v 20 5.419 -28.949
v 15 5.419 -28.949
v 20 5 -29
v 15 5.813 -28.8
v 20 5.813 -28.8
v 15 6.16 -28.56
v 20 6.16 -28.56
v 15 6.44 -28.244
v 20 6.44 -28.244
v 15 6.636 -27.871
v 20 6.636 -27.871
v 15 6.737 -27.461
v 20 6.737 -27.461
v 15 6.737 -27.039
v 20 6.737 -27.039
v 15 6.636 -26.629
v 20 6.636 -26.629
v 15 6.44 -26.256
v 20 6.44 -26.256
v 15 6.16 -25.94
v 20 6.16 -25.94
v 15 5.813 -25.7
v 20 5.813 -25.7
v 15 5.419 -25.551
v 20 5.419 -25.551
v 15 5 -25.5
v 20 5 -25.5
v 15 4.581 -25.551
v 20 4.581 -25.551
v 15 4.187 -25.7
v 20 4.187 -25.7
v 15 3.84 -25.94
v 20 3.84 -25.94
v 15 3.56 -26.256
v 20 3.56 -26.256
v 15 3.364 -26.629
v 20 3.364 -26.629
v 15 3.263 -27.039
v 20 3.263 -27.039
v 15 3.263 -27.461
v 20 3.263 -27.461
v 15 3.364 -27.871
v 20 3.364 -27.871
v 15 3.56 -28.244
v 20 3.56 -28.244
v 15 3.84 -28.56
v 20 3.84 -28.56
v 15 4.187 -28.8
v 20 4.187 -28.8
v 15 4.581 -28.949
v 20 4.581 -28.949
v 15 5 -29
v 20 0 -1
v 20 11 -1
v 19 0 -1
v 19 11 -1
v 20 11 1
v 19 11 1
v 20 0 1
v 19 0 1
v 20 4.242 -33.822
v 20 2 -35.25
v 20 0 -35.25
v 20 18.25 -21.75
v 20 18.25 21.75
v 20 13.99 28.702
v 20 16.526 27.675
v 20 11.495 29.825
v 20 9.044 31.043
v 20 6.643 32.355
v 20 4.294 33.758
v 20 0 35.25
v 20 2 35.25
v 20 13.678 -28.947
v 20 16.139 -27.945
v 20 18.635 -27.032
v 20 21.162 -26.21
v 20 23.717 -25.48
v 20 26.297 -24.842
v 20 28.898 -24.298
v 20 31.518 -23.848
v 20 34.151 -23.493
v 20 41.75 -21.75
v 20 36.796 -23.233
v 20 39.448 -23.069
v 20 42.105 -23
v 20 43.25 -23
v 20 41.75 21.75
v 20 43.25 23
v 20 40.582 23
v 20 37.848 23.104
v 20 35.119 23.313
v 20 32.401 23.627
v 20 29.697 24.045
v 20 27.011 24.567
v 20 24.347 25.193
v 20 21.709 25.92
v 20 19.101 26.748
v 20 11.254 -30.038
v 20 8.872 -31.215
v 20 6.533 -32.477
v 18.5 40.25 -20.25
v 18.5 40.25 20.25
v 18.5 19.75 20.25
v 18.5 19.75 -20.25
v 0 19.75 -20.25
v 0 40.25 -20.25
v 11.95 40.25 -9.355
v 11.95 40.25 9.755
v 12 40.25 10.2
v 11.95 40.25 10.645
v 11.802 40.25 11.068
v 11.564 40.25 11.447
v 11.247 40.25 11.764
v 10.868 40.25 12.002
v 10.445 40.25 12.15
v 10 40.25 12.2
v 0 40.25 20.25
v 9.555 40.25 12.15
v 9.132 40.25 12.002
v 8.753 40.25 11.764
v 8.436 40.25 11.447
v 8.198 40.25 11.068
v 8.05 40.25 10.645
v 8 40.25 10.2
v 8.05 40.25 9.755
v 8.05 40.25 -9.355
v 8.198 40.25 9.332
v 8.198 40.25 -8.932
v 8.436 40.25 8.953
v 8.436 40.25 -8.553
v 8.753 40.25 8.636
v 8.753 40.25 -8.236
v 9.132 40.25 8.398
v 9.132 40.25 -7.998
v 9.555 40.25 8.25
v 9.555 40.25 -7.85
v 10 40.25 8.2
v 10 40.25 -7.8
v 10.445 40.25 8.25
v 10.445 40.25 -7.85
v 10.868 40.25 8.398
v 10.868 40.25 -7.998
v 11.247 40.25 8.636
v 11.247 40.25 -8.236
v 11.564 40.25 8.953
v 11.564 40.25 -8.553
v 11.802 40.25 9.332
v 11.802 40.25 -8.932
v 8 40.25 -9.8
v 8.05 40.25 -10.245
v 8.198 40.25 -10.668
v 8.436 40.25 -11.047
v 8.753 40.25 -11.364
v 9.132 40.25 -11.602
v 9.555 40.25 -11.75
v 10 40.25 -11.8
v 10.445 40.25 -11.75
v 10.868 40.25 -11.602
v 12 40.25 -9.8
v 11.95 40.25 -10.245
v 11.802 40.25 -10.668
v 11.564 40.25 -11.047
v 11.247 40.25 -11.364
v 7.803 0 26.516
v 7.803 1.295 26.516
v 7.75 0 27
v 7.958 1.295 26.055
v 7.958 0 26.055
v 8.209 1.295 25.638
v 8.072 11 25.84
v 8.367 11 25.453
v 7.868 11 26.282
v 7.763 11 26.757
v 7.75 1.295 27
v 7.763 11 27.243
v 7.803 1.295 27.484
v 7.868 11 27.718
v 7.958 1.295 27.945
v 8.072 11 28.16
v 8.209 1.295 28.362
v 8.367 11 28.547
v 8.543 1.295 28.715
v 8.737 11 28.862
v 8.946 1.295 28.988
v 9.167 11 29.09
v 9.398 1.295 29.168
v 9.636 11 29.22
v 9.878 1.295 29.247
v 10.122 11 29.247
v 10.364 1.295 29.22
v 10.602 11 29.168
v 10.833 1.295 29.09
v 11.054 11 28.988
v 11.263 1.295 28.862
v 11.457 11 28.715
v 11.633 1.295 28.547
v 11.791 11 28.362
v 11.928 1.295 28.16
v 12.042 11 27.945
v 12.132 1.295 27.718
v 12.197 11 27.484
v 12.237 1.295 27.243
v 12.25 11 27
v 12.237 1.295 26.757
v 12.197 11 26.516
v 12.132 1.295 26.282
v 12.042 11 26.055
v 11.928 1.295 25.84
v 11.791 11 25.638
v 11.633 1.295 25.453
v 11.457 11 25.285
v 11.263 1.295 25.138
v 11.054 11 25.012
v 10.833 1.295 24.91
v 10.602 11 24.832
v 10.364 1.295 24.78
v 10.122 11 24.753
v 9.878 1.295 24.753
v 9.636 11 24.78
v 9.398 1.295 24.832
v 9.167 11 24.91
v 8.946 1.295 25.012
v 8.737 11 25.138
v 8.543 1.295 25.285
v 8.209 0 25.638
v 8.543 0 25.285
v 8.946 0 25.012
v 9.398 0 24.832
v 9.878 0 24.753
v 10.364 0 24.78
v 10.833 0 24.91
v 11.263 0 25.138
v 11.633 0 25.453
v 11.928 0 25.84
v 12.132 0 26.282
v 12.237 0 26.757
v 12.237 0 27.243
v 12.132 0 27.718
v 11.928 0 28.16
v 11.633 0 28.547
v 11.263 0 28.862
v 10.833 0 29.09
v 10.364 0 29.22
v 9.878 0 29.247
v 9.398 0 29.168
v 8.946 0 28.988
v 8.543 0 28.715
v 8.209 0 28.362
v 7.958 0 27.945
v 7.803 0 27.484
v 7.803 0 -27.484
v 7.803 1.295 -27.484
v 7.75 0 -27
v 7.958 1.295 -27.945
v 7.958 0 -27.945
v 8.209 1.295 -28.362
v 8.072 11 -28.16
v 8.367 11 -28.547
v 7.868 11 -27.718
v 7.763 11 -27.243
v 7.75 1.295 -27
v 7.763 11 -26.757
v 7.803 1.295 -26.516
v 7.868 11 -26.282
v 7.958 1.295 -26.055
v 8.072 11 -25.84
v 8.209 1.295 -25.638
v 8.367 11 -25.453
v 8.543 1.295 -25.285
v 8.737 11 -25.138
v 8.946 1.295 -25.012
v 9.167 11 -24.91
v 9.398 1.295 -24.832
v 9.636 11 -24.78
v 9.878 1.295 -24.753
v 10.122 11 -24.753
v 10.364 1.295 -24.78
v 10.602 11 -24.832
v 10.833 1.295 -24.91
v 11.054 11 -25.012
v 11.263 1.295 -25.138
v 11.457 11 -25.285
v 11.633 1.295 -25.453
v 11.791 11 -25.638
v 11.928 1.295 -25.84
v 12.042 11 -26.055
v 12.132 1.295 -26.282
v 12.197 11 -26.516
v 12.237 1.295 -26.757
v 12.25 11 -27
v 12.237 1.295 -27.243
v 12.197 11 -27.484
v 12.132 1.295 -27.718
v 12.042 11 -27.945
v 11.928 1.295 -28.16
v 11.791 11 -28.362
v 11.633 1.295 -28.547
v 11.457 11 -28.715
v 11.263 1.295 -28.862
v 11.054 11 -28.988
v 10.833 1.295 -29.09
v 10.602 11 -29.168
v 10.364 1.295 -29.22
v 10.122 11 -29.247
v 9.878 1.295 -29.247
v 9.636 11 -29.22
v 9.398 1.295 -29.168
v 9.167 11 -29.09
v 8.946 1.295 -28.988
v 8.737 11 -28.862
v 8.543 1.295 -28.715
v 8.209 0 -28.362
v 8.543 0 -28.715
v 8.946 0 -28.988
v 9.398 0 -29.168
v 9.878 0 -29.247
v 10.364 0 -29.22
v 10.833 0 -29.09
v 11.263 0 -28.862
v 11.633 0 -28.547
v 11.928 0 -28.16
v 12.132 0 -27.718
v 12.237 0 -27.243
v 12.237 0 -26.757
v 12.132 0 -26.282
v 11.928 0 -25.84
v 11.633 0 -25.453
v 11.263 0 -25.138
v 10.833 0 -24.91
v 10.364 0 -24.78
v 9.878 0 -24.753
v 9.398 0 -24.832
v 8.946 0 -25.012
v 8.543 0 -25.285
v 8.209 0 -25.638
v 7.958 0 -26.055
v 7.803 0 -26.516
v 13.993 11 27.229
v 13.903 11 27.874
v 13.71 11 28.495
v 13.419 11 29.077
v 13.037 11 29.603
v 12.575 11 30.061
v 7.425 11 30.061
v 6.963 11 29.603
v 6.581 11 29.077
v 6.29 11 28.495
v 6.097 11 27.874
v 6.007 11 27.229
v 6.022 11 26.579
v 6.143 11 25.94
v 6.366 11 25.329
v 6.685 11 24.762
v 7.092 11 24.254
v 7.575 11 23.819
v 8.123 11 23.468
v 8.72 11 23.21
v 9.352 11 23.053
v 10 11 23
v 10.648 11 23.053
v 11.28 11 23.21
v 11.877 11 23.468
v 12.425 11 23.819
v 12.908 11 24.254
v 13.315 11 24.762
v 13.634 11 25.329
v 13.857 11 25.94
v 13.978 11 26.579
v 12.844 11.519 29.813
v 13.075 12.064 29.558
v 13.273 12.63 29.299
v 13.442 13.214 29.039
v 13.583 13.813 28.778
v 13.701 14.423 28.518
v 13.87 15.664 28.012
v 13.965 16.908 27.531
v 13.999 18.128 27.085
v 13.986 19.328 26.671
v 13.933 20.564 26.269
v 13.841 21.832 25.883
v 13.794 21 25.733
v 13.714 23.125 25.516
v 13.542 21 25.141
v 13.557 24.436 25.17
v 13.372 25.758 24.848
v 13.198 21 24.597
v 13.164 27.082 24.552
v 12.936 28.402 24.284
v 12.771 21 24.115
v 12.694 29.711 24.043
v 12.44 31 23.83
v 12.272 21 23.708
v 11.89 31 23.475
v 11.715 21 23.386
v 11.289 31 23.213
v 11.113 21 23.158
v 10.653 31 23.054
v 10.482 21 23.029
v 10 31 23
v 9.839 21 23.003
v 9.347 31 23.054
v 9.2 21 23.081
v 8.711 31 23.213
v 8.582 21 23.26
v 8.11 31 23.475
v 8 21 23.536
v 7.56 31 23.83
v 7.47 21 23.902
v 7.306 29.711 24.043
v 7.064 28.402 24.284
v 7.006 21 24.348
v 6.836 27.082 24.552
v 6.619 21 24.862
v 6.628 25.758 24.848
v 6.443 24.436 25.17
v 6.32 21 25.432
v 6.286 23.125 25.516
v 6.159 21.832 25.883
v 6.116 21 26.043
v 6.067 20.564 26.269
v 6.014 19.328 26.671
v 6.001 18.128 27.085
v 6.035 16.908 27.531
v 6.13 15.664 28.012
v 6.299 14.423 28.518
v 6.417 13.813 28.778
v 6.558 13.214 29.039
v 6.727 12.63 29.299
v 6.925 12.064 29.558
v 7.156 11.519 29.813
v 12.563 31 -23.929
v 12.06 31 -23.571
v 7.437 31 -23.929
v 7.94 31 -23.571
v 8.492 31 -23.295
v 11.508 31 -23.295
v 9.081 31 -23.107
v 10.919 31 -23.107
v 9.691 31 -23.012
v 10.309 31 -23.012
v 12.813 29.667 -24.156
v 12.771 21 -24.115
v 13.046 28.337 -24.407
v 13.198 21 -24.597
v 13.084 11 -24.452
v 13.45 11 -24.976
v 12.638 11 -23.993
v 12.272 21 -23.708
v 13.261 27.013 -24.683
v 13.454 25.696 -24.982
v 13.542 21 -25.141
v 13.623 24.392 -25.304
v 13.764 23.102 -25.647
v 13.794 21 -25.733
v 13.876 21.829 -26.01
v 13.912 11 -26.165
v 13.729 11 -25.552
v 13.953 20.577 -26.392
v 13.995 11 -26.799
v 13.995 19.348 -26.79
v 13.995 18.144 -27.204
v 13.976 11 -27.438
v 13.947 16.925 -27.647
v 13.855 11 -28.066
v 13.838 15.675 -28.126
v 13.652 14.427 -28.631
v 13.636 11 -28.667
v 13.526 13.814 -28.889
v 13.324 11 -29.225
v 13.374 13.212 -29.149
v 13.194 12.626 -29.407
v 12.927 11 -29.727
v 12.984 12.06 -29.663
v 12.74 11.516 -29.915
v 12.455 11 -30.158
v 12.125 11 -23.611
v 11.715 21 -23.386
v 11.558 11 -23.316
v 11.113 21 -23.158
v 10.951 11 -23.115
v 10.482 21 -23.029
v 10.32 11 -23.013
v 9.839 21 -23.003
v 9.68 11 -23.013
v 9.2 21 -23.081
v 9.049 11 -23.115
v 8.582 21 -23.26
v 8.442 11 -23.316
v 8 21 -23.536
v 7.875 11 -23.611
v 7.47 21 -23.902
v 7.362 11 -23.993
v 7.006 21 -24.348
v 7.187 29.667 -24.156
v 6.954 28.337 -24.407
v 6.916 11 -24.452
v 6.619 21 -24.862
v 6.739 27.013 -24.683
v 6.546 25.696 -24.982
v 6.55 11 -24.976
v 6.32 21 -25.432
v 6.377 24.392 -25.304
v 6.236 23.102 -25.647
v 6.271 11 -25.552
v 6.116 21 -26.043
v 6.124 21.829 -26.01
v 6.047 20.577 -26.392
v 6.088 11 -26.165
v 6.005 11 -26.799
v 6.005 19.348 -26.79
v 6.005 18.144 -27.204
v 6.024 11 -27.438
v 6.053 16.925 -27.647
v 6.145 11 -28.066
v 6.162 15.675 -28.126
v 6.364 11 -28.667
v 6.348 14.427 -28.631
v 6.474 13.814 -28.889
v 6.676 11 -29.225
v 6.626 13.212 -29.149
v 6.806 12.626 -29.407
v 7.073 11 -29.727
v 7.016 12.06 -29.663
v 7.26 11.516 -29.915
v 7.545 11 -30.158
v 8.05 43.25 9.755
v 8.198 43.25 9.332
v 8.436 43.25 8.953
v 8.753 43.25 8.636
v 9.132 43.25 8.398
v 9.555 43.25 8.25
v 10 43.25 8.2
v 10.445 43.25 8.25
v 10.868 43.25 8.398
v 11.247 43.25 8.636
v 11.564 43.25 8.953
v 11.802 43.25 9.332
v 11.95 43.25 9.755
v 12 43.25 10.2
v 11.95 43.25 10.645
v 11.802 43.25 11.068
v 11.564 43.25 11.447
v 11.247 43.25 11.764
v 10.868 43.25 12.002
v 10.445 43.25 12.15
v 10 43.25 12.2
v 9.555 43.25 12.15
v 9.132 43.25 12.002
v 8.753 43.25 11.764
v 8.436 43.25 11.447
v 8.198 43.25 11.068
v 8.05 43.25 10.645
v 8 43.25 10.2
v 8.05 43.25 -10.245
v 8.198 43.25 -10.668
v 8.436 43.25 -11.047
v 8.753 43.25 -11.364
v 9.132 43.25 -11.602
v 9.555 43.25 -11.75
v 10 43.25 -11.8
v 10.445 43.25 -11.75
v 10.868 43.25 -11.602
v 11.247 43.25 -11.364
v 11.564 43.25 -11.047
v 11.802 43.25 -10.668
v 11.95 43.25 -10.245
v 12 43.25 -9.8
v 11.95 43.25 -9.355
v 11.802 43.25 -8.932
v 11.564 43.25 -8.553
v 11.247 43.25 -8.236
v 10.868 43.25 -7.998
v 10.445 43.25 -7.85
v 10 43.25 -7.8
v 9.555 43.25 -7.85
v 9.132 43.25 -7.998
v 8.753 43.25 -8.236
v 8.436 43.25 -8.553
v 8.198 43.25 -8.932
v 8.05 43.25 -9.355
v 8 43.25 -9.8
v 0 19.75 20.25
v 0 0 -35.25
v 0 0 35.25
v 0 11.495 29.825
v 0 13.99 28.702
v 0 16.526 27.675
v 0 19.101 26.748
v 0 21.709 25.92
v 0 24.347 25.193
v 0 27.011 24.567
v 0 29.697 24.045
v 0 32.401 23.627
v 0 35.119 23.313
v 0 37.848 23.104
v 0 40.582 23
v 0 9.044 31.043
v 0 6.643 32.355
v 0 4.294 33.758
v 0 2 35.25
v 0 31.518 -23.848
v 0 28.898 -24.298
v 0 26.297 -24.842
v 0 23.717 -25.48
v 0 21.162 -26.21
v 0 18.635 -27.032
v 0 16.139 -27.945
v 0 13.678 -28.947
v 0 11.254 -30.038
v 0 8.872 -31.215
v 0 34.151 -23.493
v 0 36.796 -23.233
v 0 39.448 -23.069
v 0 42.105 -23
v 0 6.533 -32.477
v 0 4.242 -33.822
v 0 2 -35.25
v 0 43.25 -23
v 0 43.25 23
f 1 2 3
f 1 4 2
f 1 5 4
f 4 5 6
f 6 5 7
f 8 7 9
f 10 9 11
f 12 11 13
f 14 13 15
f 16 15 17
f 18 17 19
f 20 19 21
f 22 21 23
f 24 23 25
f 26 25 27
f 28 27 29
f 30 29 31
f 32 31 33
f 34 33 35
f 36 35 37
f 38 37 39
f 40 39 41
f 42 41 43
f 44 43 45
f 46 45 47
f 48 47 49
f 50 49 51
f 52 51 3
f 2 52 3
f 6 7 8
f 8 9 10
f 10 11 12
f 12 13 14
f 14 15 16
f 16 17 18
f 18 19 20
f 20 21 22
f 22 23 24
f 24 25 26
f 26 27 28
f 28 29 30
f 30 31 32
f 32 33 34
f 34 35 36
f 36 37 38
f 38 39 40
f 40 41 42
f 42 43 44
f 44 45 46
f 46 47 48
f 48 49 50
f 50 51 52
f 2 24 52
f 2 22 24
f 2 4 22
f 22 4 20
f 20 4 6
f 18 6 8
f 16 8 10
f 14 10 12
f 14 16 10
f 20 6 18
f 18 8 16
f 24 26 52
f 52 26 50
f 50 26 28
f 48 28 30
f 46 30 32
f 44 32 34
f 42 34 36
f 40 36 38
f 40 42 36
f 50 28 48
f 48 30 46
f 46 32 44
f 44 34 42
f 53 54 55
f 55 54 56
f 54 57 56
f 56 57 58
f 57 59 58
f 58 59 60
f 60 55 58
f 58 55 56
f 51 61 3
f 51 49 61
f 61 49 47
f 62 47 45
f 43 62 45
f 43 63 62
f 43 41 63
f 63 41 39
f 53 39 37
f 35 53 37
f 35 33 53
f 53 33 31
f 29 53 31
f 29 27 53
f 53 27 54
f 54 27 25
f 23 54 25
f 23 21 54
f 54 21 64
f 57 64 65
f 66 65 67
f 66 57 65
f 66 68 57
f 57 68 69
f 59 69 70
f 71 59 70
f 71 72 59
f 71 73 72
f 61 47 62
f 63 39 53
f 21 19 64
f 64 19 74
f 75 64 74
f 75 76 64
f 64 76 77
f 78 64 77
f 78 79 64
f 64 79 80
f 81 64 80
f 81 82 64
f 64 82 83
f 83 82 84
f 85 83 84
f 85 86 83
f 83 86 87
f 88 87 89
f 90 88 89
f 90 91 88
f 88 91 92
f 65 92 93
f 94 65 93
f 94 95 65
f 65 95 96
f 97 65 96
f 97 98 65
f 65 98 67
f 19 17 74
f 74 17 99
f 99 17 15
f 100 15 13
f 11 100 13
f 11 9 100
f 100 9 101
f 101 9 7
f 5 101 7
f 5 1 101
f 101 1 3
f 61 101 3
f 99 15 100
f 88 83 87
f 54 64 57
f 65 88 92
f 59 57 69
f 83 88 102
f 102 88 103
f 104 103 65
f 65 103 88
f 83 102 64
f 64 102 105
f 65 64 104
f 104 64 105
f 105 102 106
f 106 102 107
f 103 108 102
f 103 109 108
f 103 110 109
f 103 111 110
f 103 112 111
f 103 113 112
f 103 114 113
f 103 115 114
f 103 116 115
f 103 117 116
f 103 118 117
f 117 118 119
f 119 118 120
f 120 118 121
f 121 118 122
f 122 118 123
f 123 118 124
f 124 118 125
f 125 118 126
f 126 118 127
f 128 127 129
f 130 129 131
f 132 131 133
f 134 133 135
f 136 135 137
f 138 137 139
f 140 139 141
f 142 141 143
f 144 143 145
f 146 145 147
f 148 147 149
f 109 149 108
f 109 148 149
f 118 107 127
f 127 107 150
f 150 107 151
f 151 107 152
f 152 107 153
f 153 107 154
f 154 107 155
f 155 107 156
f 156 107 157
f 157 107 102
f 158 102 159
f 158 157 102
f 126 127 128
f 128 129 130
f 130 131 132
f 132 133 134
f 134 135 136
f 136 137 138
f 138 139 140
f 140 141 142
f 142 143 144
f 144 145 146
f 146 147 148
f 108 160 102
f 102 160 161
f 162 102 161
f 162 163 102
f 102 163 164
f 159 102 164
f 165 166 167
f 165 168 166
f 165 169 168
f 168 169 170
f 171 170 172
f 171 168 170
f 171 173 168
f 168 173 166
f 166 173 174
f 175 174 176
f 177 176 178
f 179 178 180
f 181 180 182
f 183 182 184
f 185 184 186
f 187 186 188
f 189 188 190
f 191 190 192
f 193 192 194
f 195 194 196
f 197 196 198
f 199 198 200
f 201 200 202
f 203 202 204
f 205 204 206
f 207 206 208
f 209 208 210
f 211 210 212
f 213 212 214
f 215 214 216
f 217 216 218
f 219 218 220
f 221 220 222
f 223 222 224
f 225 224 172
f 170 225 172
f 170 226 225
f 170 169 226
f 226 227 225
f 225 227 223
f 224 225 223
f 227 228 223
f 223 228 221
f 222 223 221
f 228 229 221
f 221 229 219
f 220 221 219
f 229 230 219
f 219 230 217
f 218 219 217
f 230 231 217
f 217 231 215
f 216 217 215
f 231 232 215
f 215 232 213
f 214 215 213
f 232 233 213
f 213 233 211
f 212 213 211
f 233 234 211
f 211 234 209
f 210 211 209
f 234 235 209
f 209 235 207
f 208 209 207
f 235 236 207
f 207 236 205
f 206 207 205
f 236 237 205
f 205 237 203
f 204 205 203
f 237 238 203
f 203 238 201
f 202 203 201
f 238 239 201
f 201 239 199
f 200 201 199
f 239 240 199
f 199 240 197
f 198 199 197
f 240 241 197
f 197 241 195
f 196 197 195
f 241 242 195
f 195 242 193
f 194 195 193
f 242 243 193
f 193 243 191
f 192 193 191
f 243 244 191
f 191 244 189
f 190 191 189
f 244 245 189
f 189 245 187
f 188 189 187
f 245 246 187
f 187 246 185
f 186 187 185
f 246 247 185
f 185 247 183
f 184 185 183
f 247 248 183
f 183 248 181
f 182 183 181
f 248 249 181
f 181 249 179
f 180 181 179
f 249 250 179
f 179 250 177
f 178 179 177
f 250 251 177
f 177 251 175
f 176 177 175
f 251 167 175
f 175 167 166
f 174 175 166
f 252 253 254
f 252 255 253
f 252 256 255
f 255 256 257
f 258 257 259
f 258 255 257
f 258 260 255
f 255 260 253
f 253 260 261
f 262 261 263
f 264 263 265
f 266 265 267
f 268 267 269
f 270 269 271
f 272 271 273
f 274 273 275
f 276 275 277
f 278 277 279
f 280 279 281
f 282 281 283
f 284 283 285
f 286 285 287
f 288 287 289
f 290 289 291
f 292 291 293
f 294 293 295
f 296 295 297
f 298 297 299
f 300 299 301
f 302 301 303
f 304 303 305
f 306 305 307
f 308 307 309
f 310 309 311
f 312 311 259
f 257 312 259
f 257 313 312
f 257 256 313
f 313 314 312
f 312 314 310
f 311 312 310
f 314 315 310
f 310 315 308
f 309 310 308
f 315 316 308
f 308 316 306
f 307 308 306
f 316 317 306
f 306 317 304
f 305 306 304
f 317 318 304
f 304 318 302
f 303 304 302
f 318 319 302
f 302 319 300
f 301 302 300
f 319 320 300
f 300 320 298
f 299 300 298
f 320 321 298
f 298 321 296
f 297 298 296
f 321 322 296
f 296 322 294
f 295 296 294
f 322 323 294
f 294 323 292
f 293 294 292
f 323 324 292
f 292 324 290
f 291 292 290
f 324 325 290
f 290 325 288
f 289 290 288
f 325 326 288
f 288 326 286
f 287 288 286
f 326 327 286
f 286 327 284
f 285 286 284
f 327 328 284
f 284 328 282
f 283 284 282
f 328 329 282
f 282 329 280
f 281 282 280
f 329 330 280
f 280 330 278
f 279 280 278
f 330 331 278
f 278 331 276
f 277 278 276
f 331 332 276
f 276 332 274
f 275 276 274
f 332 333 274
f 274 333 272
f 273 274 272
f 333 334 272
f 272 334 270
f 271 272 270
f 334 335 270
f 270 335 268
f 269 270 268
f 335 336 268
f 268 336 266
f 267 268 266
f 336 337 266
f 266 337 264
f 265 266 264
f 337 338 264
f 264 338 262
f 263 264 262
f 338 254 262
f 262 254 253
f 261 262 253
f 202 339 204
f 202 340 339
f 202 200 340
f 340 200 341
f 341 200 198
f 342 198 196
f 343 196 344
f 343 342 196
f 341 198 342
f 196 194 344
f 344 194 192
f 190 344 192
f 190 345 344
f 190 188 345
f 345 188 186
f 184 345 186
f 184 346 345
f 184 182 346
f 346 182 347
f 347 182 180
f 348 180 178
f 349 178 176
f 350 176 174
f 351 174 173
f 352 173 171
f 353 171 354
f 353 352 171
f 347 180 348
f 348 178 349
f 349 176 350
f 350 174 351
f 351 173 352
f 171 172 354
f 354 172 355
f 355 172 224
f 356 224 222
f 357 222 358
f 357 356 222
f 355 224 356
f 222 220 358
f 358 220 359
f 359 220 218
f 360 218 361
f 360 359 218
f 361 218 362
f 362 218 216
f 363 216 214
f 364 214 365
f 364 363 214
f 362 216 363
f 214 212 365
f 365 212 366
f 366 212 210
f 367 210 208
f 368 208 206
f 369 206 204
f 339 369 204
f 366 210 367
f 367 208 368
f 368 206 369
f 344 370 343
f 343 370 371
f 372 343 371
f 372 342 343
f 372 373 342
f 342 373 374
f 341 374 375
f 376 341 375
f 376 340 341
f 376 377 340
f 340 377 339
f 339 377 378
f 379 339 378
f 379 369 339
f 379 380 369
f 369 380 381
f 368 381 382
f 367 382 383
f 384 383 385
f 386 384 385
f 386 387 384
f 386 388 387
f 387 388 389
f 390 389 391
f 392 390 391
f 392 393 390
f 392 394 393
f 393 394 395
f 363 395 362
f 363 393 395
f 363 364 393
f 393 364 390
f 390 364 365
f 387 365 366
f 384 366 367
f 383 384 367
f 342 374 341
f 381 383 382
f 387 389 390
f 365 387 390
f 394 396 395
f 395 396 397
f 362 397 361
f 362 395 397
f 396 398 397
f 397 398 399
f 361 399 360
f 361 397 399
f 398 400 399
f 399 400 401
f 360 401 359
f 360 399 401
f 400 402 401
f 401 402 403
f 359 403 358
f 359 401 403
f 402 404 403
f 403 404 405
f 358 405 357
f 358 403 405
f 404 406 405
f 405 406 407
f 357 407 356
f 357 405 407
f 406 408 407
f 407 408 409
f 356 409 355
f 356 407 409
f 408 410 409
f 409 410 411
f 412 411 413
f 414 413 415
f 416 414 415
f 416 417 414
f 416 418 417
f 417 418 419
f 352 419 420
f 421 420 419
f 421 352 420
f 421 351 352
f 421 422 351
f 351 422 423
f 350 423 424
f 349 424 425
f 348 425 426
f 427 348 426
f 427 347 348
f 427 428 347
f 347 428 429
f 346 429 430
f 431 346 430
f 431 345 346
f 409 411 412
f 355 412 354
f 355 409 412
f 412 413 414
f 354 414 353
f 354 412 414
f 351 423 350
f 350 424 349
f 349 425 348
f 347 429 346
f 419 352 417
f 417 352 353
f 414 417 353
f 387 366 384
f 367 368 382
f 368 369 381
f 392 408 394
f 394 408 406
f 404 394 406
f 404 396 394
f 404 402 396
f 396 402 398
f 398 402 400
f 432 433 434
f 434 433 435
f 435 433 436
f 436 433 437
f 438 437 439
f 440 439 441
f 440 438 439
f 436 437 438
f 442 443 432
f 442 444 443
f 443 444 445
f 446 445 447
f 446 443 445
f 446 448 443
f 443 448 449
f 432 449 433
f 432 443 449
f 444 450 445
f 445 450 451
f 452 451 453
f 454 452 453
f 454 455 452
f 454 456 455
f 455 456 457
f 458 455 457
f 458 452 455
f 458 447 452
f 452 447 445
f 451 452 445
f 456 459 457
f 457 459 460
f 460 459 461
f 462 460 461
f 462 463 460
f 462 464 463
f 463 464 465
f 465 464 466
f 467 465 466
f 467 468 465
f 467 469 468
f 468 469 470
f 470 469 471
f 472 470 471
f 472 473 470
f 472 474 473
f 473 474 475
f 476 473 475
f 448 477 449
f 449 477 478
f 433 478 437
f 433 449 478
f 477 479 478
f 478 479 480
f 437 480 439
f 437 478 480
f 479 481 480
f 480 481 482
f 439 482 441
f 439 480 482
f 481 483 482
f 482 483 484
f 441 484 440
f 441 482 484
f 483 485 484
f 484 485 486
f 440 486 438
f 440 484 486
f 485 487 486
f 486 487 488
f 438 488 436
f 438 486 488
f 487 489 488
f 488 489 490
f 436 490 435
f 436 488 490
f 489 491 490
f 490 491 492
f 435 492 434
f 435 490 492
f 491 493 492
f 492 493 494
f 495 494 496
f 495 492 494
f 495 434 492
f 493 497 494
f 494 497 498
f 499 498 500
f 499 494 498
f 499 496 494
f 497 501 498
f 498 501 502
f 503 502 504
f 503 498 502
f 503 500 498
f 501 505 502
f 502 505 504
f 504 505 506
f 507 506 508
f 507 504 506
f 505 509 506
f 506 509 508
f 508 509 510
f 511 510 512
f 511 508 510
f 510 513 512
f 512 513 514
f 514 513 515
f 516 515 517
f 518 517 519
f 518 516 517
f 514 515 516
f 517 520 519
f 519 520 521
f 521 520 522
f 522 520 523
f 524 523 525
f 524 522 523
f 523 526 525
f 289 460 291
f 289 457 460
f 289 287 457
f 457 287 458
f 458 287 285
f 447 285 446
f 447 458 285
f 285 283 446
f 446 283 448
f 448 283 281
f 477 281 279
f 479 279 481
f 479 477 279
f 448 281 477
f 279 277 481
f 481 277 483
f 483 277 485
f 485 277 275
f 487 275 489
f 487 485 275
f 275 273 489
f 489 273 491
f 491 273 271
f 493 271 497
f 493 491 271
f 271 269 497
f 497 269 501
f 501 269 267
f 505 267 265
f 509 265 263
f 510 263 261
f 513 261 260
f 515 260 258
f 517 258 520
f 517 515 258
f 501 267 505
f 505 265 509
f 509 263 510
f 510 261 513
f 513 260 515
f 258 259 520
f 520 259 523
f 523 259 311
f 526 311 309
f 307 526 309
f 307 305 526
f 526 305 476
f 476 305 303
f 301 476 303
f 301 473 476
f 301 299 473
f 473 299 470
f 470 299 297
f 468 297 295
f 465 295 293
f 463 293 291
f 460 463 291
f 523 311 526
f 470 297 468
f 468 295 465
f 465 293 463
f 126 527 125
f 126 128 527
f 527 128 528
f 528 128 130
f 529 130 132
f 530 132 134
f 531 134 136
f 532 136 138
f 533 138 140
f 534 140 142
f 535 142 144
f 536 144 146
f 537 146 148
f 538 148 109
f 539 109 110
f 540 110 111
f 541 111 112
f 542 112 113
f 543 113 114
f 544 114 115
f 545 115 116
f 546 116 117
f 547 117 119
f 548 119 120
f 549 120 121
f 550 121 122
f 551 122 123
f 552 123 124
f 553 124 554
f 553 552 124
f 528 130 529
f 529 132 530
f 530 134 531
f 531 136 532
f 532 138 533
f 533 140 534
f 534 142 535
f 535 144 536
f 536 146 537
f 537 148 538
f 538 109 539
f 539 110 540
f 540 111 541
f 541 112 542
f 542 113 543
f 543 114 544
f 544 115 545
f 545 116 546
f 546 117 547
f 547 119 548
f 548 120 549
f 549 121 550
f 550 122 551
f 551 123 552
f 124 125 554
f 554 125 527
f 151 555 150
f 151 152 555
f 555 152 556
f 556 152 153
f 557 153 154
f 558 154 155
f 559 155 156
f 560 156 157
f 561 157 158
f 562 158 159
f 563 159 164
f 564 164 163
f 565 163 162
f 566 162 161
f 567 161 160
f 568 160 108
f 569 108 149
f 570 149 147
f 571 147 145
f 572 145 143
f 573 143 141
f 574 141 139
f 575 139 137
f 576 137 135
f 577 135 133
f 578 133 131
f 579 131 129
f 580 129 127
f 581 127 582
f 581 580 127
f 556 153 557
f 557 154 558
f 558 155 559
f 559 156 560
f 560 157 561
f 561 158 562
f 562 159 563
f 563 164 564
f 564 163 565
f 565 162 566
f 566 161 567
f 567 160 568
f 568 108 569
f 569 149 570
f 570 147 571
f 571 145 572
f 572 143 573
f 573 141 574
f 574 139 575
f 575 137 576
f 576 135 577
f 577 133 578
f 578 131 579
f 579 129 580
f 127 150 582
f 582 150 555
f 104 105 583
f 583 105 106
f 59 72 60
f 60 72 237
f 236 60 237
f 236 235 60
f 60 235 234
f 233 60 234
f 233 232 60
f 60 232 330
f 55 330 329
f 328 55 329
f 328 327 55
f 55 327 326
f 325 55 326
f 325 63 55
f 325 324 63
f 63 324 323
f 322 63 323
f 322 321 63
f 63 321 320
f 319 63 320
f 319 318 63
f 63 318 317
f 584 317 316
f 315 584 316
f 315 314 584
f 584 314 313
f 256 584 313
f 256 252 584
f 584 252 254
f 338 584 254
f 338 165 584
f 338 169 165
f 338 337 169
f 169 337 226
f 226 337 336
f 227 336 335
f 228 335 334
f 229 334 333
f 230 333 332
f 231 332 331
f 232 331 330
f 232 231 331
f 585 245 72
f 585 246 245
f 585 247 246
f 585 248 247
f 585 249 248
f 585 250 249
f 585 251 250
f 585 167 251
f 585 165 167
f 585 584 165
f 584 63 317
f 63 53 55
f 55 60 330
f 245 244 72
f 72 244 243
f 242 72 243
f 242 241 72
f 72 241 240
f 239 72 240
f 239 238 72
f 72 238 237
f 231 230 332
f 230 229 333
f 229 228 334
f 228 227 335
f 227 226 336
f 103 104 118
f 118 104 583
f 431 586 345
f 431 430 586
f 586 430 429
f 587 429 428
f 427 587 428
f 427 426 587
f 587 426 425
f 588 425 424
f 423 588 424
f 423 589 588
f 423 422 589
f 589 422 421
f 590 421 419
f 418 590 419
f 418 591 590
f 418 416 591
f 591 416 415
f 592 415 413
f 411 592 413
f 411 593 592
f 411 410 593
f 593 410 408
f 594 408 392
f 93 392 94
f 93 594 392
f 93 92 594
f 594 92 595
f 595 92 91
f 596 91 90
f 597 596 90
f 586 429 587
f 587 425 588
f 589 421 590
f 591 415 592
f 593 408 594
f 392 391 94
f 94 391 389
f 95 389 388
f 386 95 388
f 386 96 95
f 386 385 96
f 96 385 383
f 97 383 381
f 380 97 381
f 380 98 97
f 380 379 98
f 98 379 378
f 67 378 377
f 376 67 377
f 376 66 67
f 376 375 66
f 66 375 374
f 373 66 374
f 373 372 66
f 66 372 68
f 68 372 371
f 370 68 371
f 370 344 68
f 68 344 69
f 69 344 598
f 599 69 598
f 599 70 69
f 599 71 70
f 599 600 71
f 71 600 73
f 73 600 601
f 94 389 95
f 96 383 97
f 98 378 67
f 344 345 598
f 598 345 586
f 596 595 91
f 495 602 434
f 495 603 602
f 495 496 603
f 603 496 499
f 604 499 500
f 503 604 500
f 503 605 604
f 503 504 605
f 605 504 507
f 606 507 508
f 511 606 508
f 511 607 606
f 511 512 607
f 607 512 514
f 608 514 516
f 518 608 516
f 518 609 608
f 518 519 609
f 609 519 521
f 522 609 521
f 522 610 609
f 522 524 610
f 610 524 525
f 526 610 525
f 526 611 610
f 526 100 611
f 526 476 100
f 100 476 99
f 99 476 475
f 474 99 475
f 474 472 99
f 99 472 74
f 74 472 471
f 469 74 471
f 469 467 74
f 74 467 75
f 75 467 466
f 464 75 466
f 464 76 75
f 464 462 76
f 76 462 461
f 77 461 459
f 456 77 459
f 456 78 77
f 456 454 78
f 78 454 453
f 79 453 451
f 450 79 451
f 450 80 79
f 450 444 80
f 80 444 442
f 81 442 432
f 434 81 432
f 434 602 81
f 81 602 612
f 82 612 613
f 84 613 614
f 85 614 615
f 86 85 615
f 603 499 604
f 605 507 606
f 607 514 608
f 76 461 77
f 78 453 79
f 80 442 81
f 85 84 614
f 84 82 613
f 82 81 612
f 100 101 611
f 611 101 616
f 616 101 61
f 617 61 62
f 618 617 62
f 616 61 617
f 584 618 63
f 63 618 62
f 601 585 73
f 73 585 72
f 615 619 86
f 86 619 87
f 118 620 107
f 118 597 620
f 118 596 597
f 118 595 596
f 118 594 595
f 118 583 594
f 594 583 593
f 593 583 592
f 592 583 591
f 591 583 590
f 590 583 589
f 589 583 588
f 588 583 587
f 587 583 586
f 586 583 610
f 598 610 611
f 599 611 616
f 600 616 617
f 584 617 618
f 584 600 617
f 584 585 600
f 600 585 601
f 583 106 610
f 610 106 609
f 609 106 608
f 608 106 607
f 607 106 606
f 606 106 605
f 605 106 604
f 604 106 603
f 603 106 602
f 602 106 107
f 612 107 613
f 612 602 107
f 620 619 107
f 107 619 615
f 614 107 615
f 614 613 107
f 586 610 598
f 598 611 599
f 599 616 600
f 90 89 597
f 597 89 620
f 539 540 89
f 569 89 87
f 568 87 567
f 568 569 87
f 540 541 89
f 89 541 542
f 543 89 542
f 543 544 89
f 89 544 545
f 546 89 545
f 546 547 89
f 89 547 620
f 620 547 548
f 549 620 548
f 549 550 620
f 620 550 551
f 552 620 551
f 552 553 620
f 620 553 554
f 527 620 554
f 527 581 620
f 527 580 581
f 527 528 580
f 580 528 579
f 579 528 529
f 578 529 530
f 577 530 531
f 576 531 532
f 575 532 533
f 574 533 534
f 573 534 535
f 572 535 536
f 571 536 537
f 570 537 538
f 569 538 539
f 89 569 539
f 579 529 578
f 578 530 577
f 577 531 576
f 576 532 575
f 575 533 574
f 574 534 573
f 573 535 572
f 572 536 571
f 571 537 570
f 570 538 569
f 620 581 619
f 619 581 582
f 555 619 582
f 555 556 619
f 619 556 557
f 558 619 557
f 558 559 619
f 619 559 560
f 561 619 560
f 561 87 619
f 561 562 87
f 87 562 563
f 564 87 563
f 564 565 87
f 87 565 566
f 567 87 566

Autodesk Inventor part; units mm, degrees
ref_plane "YZ Plane" through (0, 0, 0) normal (1, 0, 0) x (0, 1, 0)
ref_plane "XZ Plane" through (0, 0, 0) normal (0, 1, 0) x (-1, 0, 0)
ref_plane "XY Plane" through (0, 0, 0) normal (0, 0, 1) x (1, 0, 0)
sketch "Sketch1" plane through (0, 0, 0) normal (1, 0, 0) x (0, 1, 0)
  line L0 (0, 0) -> (0, -35.25)
  line L1 (0, -35.25) -> (2, -35.25)
  line L2 (19.75, 20.25) -> (40.25, 20.25)
  line L3 (40.25, 20.25) -> (40.25, -20.25)
  line L4 (40.25, -20.25) -> (19.75, -20.25)
  line L5 (19.75, -20.25) -> (19.75, 20.25)
  line L6 (19.75, 20.25) -> (40.25, -20.25) construction
  line L7 (40.25, 20.25) -> (19.75, -20.25) construction
  line L8 (16.75, 23) -> (43.25, 23)
  line L9 (43.25, 23) -> (43.25, -23)
  line L10 (43.25, -23) -> (16.75, -23)
  line L11 (16.75, -23) -> (16.75, 23)
  line L12 (16.75, 23) -> (43.25, -23) construction
  line L13 (43.25, 23) -> (16.75, -23) construction
  line L14 (0, 0) -> (0, 35.25)
  line L15 (0, 35.25) -> (2, 35.25)
  arc A0 (2, 35.25) -> (43.25, 23) centre (41.9161, 94.0847) ccw
  arc A1 (43.25, -23) -> (2, -35.25) centre (42.6775, -96.6486) ccw
  line L16 (-8.65, 0) -> (51.9, 0) projected
  point P0 (20, 0)
  point P1 (40.1, 0)
  point P2 (30, 0)
  point P3 (30, 23)
  point P4 (30.2, -23)
  point P5 (30, 0)
  dimension "d0" = 35.25
  dimension "d1" = 2
  dimension "d2" = 20
  dimension "d4" = 20.5
  dimension "d5" = 40.5
  dimension "d6" = 46
  dimension "d7" = 26.5
  dimension "d8" = 35.25
extrude "Extrusion1" add sketch "Sketch1" along normal blind 20 contours L10 L11 L16 L5 L4 L3 L9 | L16 L11 L10 A1 L1 L0 | L14 L15 A0 L8 L11 L16 | L11 L8 A0 L9 L16 L3 L2 L5 | L8 A0
sketch "Sketch2" plane through (0, 43.25, 23) normal (0, 1, 0) x (1, 0, 0)
  line L0 (0, 46) -> (0, 0) projected
  line L1 (0, 0) -> (20, 0) projected
  line L2 (20, 46) -> (20, 0) projected
  line L3 (0, 46) -> (20, 46) projected
  line L4 (0, 2.75) -> (20, 2.75) projected
  line L5 (0, 2.75) -> (20, 2.75) projected
  point P0 (0, 23)
  point P1 (10, 12.8)
  point P2 (10, 32.8)
  dimension "d33" = 20
  dimension "d34" = 10.05
hole "Hole1" at (10, 43.25, 10.2) at (10, 43.25, -9.8) direction (0, -1, 0) diameter 4 end up to surface
ref_plane "Work Plane1" through (0, 11, -35.25) normal (0, -1, 0) x (1, 0, 0)
sketch "Sketch3" plane through (0, 11, -35.25) normal (0, -1, 0) x (1, 0, 0)
  circle A0 centre (10, 45.45) radius 2 projected
  line L0 (0, 12.25) -> (0, 58.25) projected
  line L1 (0, 58.25) -> (20, 58.25) projected
  line L2 (20, 12.25) -> (20, 58.25) projected
  line L3 (0, 12.25) -> (20, 12.25) projected
  line L4 (0, 55.5) -> (0, 15) projected
  line L5 (0, 55.5) -> (20, 55.5) projected
  line L6 (20, 15) -> (20, 55.5) projected
  line L7 (0, 15) -> (20, 15) projected
  circle A1 centre (10, 62.25) radius 4
  circle A2 centre (10, 8.25) radius 4
  point P0 (0, 35.25)
  dimension "d19" = 4
  dimension "d20" = 4
  dimension "d30" = 8
  dimension "d31" = 8
extrude "Extrusion2" cut sketch "Sketch3" against normal blind 20 contours A1 | A2
hole "Hole2" at (10, 11, 27) at (10, 11, -27) direction (0, -1, 0) diameter 4.5 end through all
chamfer "Chamfer1" distance 1.5 angle 45 4 edges at (20, 40.25, 0) (20, 30, 20.25) (20, 19.75, 0) (20, 30, -20.25)
sketch "Sketch4" plane through (20, 0, 0) normal (1, 0, 0) x (0, 0, -1)
  line L0 (0, -8.65) -> (0, 51.9) projected
  line L1 (-35.25, 0) -> (35.25, 0) projected
  line L2 (0, 0) -> (-1, 0)
  line L3 (-1, 0) -> (-1, 11)
  line L4 (-1, 11) -> (0, 11)
  line L5 (0, 11) -> (0, 0)
  line L6 (0, 11) -> (1, 11)
  line L7 (1, 11) -> (1, 0)
  line L8 (1, 0) -> (0, 0)
  line L9 (0, 0) -> (0, 11)
  dimension "d51" = 1
  dimension "d52" = 1
extrude "Extrusion3" cut sketch "Sketch4" against normal blind 1
sketch "Sketch5" plane through (20, 0, 0) normal (1, 0, 0) x (0, 0, -1)
  line L0 (0, 0) -> (35.25, 0) projected
  line L1 (35.25, 0) -> (35.25, 2) projected
  point P0 (27.25, 5)
  dimension "d42" = 5
  dimension "d43" = 8
hole "Hole3" at (20, 5, -27.25) direction (-1, 0, 0) diameter 3.5 depth 5
equation "\"d8\" = d0"
equation "\"d20\" = d19"
equation "\"d31\" = d30"
equation "\"d52\" = d51"
properties part number "espaceur_20mm_v4"
